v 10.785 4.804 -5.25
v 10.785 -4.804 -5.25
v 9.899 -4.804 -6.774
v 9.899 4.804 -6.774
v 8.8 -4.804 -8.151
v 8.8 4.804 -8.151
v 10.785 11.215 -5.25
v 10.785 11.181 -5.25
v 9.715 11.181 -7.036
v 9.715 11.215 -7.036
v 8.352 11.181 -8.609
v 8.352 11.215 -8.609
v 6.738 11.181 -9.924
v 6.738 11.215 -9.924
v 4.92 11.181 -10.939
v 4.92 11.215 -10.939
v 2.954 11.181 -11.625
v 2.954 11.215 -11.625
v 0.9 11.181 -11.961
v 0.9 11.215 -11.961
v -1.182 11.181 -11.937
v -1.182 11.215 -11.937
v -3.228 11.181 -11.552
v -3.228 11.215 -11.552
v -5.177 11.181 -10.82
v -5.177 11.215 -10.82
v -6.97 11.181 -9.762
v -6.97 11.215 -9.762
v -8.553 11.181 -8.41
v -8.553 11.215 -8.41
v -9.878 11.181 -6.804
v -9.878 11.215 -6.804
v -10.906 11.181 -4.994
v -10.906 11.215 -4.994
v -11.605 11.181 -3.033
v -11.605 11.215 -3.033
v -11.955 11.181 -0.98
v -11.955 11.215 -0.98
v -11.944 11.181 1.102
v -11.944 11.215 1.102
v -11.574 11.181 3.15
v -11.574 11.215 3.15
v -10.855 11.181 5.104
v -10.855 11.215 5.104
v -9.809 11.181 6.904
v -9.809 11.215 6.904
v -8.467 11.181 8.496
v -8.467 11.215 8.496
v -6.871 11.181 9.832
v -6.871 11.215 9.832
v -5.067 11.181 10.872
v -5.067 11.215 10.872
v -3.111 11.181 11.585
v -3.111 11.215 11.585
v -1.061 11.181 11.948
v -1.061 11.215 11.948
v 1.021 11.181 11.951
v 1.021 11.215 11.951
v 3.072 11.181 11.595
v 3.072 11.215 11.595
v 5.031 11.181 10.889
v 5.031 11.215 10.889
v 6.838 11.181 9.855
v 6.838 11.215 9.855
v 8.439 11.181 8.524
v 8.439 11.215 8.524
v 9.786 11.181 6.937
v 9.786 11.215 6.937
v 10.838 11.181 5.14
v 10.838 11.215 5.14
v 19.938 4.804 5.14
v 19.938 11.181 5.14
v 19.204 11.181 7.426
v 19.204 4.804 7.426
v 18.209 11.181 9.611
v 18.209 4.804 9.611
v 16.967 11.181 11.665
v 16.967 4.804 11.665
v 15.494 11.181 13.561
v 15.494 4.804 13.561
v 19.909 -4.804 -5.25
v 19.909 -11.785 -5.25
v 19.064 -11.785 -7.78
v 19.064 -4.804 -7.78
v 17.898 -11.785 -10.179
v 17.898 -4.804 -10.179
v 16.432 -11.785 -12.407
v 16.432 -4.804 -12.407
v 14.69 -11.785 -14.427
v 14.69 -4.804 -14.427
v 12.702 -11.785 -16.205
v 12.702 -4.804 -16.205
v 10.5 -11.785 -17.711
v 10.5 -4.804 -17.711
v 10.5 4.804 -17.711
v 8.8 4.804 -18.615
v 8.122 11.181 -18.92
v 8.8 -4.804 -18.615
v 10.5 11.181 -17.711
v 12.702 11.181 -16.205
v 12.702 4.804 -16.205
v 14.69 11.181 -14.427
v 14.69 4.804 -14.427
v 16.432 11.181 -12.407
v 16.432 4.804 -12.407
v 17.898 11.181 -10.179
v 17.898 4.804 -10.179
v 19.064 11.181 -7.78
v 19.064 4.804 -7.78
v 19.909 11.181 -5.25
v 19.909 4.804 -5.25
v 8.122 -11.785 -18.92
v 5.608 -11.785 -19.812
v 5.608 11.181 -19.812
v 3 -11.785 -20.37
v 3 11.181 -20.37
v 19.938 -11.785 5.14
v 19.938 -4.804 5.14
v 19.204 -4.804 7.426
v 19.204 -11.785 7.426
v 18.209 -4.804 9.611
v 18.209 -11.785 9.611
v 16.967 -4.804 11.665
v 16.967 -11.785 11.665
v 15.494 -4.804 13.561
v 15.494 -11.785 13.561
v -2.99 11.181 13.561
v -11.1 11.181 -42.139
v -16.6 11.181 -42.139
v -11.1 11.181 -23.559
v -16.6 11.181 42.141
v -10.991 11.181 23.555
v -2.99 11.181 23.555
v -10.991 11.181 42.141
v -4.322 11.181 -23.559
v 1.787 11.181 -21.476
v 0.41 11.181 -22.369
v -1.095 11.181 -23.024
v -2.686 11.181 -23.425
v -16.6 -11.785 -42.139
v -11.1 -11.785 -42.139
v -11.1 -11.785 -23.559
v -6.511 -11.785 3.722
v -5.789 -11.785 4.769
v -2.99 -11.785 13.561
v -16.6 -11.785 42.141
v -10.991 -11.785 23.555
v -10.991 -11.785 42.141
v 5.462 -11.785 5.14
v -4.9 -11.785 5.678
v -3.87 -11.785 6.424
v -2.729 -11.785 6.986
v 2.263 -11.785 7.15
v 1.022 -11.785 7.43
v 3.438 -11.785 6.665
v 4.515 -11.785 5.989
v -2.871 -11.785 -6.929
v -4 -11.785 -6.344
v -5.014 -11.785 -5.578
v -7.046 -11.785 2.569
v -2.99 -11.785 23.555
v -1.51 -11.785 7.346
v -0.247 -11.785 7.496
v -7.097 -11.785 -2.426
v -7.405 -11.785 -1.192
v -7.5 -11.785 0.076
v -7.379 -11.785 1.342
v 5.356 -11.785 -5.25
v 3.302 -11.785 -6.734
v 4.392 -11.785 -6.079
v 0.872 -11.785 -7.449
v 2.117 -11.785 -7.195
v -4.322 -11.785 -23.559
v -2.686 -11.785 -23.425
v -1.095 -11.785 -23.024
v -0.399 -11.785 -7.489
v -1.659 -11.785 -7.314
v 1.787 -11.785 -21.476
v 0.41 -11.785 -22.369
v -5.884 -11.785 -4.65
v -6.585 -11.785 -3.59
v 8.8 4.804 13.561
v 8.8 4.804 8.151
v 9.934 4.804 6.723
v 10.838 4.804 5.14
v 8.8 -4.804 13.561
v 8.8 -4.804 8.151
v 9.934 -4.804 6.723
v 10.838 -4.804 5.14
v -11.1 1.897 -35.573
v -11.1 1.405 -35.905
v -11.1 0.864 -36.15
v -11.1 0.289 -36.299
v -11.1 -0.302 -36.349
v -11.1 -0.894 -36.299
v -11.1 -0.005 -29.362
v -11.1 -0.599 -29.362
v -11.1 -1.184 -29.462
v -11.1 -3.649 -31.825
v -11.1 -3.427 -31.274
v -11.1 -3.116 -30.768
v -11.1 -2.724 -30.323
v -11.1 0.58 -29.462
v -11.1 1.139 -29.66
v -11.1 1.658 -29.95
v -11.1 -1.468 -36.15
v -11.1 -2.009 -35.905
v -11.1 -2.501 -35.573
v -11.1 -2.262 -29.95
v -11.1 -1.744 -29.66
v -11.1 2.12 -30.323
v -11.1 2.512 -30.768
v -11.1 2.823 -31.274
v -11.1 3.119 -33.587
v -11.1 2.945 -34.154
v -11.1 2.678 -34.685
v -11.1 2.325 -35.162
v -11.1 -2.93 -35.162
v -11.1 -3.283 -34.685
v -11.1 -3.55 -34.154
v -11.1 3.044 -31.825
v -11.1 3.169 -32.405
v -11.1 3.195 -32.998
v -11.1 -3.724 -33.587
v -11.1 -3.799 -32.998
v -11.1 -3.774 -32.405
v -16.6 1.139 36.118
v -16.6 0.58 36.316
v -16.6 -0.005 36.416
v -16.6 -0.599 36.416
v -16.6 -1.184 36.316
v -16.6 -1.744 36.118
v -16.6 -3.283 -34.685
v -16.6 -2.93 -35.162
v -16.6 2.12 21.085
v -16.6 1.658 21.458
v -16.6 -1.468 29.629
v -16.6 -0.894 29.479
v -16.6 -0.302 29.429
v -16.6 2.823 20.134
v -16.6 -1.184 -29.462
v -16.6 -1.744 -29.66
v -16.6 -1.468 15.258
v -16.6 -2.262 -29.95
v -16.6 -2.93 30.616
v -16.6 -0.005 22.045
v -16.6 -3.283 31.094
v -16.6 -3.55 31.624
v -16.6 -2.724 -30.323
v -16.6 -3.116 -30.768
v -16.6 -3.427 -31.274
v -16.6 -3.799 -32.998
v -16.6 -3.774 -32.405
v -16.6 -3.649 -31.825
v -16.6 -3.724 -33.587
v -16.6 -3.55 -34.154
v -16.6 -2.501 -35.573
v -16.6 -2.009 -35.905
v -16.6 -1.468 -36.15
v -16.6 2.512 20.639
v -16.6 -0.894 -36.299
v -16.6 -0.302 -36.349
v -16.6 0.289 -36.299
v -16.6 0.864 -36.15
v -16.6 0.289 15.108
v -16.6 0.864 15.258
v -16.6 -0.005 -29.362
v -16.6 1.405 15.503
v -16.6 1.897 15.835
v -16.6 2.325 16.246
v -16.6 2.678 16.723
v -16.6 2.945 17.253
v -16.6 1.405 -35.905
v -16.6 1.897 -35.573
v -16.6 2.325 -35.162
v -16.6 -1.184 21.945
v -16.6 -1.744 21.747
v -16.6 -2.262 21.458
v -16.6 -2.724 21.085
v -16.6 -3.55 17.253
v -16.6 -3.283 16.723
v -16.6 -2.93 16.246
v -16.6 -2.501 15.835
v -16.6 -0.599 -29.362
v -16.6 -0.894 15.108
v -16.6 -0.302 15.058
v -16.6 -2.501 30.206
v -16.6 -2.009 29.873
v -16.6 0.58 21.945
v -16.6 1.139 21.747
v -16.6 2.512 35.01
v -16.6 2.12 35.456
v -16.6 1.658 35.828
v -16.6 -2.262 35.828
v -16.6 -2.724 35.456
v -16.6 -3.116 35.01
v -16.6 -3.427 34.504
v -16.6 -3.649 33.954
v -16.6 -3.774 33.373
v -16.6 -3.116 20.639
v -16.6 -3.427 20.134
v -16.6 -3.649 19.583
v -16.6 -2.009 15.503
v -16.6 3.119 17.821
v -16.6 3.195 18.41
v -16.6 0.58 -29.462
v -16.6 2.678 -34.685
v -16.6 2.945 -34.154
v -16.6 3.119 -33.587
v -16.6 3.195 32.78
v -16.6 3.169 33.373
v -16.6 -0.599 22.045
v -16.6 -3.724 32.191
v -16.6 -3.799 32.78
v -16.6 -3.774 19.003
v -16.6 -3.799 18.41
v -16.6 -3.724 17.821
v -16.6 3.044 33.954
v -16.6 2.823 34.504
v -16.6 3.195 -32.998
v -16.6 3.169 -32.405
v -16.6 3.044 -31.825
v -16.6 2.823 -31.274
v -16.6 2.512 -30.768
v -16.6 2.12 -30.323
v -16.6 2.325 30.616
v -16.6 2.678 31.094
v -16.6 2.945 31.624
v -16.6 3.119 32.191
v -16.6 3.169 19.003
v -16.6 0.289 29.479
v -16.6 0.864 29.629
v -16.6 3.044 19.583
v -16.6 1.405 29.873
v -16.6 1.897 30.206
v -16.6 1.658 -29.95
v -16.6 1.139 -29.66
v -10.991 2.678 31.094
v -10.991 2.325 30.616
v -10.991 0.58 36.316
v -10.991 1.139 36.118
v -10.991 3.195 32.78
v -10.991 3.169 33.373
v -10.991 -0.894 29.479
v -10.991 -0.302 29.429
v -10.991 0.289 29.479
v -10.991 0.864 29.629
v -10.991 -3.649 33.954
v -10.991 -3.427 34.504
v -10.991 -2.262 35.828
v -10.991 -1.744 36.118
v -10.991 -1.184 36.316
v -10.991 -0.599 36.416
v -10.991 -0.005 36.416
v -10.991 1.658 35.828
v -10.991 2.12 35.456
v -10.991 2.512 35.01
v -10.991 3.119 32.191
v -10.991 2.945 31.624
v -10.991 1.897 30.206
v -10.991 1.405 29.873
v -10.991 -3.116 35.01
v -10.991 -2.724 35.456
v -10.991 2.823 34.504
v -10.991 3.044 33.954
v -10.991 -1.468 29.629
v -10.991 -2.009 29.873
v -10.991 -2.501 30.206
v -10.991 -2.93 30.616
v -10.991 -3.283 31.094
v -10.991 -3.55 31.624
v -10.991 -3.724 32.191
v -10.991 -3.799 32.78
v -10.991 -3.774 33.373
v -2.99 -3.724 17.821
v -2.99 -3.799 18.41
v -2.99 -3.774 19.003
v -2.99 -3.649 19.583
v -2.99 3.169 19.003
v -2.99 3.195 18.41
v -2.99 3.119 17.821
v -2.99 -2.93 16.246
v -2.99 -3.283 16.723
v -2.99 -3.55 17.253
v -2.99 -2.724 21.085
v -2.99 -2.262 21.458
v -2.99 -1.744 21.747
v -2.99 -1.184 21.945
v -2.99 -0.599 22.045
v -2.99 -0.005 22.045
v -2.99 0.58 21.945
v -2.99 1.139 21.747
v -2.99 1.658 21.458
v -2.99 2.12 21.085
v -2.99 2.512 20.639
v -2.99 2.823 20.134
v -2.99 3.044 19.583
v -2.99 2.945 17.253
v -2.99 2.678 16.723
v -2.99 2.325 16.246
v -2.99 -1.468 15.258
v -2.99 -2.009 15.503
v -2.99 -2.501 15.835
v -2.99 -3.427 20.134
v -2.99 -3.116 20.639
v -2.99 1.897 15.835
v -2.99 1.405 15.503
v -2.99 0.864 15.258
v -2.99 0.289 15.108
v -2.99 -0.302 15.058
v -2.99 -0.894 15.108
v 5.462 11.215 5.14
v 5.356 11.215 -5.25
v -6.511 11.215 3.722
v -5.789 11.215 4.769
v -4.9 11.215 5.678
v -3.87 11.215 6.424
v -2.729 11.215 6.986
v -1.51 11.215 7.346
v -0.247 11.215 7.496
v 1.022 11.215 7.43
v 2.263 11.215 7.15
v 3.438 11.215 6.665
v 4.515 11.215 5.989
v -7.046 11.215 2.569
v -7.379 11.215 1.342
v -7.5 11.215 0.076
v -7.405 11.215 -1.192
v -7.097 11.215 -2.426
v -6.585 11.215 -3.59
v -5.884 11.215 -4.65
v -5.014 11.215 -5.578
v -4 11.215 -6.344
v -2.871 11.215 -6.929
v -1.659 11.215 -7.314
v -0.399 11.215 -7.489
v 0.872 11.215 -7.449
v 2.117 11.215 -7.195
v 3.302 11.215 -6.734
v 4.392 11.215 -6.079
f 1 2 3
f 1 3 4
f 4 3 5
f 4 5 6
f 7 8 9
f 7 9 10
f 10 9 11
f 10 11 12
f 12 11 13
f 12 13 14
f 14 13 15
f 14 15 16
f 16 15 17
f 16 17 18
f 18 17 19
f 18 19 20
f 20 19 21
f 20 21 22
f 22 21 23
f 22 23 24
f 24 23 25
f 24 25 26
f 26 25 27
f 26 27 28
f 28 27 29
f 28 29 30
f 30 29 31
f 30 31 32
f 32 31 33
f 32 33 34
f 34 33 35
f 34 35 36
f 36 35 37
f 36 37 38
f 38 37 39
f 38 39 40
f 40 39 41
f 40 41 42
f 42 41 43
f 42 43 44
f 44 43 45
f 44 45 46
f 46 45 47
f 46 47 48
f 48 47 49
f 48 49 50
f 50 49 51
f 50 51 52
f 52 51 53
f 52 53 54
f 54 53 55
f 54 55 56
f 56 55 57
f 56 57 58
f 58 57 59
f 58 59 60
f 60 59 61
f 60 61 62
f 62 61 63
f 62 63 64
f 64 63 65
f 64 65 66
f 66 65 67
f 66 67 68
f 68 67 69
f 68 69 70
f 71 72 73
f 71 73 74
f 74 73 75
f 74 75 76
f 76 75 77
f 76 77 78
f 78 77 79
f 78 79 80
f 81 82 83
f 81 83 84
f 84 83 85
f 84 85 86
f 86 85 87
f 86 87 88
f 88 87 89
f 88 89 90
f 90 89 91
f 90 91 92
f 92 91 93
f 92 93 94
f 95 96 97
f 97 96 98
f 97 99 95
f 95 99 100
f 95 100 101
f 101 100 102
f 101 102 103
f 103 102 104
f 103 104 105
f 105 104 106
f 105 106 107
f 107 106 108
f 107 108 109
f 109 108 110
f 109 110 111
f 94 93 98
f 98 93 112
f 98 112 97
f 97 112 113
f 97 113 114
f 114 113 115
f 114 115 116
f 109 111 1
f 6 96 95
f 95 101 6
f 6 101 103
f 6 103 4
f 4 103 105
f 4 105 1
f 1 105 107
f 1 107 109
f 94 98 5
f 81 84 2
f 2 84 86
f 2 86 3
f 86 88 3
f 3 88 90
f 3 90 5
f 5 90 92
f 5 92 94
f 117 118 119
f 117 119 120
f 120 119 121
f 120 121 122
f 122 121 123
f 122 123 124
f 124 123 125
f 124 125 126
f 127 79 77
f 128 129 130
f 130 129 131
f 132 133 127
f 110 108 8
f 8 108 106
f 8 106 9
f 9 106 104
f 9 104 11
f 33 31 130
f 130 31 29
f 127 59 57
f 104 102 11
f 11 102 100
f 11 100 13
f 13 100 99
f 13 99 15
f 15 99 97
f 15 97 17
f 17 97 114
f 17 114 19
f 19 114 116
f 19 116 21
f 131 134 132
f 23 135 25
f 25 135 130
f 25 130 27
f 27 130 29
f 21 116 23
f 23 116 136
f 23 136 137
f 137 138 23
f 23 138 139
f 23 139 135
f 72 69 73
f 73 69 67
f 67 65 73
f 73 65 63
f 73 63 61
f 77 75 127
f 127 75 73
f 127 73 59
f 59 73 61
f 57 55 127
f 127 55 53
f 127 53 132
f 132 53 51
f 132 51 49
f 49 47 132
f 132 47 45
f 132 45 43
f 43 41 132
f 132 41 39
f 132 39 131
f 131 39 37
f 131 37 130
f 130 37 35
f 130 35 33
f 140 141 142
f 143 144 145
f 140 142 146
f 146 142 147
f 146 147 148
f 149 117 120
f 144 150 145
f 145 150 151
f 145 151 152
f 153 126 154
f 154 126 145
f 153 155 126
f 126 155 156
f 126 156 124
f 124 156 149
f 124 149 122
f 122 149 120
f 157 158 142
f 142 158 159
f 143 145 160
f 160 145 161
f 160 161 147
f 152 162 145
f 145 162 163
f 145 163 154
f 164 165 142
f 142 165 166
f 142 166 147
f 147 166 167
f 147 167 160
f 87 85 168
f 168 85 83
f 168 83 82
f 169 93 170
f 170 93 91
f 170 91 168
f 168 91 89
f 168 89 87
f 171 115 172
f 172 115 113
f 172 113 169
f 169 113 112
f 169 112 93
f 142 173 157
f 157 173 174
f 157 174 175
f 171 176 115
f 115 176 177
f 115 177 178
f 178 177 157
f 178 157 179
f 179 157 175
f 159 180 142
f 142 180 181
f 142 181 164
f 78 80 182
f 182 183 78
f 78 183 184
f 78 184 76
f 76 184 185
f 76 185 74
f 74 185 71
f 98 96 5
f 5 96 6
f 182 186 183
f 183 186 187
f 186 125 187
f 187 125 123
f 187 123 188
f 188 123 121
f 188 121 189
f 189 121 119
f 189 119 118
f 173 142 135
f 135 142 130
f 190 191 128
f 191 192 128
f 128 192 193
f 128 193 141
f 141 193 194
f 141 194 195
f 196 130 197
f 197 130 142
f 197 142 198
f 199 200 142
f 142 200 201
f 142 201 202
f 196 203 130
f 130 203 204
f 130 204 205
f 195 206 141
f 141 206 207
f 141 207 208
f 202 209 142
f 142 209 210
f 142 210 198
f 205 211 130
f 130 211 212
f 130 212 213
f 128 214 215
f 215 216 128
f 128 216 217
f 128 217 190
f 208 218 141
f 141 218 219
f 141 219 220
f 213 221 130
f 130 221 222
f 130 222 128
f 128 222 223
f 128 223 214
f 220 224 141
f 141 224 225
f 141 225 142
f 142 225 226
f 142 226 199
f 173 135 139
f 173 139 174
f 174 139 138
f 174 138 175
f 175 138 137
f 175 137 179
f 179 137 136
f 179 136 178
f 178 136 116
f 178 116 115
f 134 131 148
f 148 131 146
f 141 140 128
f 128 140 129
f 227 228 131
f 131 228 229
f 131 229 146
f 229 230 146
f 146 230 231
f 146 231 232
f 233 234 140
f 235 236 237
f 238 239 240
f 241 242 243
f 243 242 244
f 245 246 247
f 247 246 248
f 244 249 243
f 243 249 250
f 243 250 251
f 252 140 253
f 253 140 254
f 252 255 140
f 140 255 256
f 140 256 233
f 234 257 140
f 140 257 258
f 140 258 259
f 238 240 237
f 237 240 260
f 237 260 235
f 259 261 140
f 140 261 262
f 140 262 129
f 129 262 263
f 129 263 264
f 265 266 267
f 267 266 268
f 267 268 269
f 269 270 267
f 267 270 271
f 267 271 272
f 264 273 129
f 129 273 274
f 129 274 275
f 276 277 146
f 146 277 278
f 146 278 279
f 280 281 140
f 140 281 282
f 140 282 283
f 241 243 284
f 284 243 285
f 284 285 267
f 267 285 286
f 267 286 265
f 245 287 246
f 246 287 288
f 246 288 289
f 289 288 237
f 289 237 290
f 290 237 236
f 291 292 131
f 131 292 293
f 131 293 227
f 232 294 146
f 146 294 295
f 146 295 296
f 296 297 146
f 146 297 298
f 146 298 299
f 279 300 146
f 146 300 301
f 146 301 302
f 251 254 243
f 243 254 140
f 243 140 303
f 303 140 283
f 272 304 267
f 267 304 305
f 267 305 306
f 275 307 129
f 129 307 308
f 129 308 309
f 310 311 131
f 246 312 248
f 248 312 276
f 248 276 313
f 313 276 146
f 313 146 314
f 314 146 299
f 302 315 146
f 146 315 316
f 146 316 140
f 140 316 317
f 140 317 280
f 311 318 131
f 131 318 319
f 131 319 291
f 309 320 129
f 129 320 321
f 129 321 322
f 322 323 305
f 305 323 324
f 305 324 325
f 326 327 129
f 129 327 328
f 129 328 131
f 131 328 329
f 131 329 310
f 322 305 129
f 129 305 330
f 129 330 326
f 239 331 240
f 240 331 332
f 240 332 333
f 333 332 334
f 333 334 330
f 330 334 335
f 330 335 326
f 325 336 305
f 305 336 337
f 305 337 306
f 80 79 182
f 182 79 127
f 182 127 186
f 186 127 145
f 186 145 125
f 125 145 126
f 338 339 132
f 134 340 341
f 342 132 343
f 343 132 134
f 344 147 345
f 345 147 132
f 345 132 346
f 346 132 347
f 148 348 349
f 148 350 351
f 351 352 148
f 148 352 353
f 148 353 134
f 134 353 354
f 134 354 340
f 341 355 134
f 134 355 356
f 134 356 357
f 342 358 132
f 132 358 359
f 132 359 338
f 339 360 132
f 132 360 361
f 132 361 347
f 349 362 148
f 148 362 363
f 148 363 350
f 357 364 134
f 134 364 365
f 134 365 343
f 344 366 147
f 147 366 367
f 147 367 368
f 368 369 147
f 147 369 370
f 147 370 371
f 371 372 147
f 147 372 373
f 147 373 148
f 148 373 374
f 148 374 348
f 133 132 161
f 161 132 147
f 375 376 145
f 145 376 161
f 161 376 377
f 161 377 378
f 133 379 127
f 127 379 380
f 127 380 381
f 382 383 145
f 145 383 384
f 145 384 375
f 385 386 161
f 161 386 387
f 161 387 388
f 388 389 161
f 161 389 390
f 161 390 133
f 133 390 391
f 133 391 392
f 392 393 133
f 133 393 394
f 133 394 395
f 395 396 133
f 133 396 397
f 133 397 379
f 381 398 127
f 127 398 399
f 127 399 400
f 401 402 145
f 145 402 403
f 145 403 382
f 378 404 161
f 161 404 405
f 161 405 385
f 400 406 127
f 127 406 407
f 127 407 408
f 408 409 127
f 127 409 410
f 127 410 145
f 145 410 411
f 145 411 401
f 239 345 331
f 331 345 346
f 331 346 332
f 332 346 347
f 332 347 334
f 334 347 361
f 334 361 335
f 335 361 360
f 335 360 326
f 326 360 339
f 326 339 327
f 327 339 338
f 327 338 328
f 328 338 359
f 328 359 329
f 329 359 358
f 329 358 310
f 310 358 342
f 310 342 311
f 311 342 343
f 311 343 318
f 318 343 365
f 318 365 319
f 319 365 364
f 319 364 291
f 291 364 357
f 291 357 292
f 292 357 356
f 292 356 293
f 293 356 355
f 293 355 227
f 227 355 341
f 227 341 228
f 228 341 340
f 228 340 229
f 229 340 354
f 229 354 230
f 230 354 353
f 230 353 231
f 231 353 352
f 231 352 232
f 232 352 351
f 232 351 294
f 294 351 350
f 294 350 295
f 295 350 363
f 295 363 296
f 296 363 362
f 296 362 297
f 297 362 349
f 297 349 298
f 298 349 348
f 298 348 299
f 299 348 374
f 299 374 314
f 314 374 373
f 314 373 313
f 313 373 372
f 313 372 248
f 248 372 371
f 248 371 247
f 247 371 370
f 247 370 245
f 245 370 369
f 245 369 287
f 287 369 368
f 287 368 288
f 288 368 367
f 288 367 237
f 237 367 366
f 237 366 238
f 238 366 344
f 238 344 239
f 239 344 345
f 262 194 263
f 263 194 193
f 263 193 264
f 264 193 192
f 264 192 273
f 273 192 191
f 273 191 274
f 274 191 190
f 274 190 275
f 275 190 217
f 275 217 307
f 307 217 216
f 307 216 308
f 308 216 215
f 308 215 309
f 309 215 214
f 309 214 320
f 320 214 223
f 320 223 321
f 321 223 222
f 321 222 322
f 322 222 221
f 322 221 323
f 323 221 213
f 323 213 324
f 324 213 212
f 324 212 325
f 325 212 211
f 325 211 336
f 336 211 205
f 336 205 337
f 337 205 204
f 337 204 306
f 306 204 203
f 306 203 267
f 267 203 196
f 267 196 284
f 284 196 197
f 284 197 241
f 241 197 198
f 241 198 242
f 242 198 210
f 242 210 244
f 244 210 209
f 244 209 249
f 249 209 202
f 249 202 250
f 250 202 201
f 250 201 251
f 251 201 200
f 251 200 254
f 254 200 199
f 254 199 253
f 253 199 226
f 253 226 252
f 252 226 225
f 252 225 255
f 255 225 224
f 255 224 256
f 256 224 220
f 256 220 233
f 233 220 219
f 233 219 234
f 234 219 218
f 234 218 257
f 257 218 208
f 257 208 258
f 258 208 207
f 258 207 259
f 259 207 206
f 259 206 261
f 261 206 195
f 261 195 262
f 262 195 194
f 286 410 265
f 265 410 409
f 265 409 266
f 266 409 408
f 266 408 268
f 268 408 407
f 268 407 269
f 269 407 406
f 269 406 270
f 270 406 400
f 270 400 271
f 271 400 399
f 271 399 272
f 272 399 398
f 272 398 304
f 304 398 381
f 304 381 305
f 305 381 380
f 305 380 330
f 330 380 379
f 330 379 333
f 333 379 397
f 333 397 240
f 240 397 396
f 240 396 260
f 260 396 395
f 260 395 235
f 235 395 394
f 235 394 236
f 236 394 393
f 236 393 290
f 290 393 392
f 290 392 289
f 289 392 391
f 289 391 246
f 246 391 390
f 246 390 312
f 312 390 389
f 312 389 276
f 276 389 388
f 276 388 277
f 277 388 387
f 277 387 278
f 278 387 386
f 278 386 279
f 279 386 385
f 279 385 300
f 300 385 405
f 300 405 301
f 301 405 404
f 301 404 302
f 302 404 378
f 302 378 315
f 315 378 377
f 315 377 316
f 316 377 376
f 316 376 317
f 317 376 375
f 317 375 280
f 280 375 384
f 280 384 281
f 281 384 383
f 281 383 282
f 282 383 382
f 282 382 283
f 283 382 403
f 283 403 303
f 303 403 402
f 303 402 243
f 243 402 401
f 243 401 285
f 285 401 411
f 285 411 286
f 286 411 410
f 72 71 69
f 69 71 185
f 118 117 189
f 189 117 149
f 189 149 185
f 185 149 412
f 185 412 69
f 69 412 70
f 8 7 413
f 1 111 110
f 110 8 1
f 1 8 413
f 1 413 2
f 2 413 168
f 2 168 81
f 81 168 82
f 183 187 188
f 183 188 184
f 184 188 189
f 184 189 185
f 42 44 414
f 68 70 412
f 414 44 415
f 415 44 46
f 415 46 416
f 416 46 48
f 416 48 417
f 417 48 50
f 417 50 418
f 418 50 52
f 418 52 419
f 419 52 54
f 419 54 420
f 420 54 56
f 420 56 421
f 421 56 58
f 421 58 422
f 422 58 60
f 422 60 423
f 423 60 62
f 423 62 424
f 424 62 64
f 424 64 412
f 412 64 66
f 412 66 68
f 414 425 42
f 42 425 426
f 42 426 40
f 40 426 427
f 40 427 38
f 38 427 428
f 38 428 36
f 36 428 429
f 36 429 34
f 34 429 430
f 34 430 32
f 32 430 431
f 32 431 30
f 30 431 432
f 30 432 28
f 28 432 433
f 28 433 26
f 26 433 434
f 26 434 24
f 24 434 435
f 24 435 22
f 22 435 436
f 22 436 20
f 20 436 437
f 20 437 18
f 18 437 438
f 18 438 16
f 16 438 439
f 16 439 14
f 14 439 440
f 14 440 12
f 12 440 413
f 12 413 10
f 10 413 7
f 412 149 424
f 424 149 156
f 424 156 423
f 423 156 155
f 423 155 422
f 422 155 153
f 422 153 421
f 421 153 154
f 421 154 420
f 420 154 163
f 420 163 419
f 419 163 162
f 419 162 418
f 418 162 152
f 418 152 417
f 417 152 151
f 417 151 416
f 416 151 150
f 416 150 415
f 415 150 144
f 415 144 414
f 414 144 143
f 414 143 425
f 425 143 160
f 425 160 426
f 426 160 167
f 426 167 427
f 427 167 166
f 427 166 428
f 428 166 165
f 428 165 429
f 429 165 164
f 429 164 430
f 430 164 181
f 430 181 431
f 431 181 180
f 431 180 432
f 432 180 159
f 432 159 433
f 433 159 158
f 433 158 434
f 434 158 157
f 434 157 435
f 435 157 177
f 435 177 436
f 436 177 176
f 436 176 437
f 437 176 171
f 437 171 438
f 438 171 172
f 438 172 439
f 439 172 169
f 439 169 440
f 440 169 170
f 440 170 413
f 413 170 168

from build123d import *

# Parameters (mm, degrees)
SKETCH_1_R           = 20.68
SKETCH_1_R_2         = 9.68
EXTRUDE_1_DEPTH      = 116.68
SKETCH_11_W          = 27
SKETCH_11_H          = 150
CUT_EXTRUDE_3_DEPTH  = 40
SKETCH_13_W          = 10
SKETCH_13_H          = 128.345013401
CUT_EXTRUDE_7_DEPTH  = 126.614916312
SKETCH_15_W          = 8
SKETCH_15_H          = 68.68
CUT_EXTRUDE_9_DEPTH  = 48
SKETCH_16_W          = 15.549431524
SKETCH_16_H          = 20
SKETCH_16_W_2        = 15.459431524
EXTRUDE_4_DEPTH      = 19.2
SKETCH_17_W          = 19.20851187
SKETCH_17_H          = 14.03
CUT_EXTRUDE_10_DEPTH = 20.2
SKETCH_18_R          = 9.59
CUT_EXTRUDE_11_DEPTH = 121.289430957
SKETCH_21_R          = 2.985
CUT_EXTRUDE_12_DEPTH = 55.2
EXTRUDE_START        = 55.2
SKETCH_24_R          = 20.59
SKETCH_24_R_2        = 9.59
EXTRUDE_2_DEPTH      = 55.2
CUT_EXTRUDE_13_DEPTH = 55.2
SKETCH_26_W          = 10.00851187
SKETCH_26_H          = 41.68
CUT_EXTRUDE_15_DEPTH = 55.2
SKETCH_27_W          = 10
SKETCH_27_H          = 40
CUT_EXTRUDE_16_DEPTH = 55.2
SKETCH_28_W          = 44.880694938
SKETCH_28_H          = 9.608044066
CUT_EXTRUDE_17_DEPTH = 12.2
SKETCH_35_W          = 13.53
SKETCH_35_H          = 20
EXTRUDE_10_DEPTH     = 15
EXTRUDE_11_DEPTH     = 15
SKETCH_37_W          = 9
SKETCH_37_H          = 20
EXTRUDE_12_DEPTH     = 20
SKETCH_38_W          = 9
SKETCH_38_H          = 20
EXTRUDE_13_DEPTH     = 20
SKETCH_42_R          = 2.985
CUT_EXTRUDE_21_DEPTH = 20
CUT_EXTRUDE_23_DEPTH = 138.235841092
SKETCH_45_W          = 3
SKETCH_45_H          = 20
EXTRUDE_14_DEPTH     = 30
SKETCH_46_W          = 3
SKETCH_46_H          = 20
EXTRUDE_15_DEPTH     = 30
SKETCH_47_W          = 33.078221107
SKETCH_47_H          = 20
EXTRUDE_16_DEPTH     = 50
SKETCH_48_W          = 30
SKETCH_48_H          = 20
EXTRUDE_17_DEPTH     = 50
SKETCH_50_W          = 50
SKETCH_50_H          = 20
EXTRUDE_18_DEPTH     = 1
SKETCH_51_W          = 50
SKETCH_51_H          = 20
EXTRUDE_19_DEPTH     = 1
SKETCH_52_W          = 53
SKETCH_52_H          = 14
CUT_EXTRUDE_24_DEPTH = 151.972575738
SKETCH_53_W          = 53
SKETCH_53_H          = 14
CUT_EXTRUDE_25_DEPTH = 151.942387436
SKETCH_54_W          = 40
SKETCH_54_H          = 73.27
CUT_EXTRUDE_26_DEPTH = 147.866192927
SKETCH_56_W          = 13.00851187
SKETCH_56_H          = 20
EXTRUDE_21_DEPTH     = 3.08
SKETCH_60_W          = 6.504255935
SKETCH_60_H          = 76.35
CUT_EXTRUDE_30_DEPTH = 137.106994034
CUT_EXTRUDE_32_DEPTH = 20
SKETCH_64_W          = 16.20851187
SKETCH_64_H          = 0.09
EXTRUDE_22_DEPTH     = 20
SKETCH_65_W          = 3.495744065
SKETCH_65_H          = 3.26
CUT_EXTRUDE_33_DEPTH = 137.057988464
SKETCH_66_W          = 3.495744065
SKETCH_66_H          = 1.776778893
SKETCH_66_W_2        = 3.503635083
SKETCH_66_H_2        = 1.775
EXTRUDE_23_DEPTH     = 20.2
SKETCH_68_W          = 6.504255935
SKETCH_68_H          = 3.66
CUT_EXTRUDE_34_DEPTH = 20
SKETCH_69_R          = 2.985
CUT_EXTRUDE_35_DEPTH = 126.598983893
SKETCH_70_R          = 2.985
CUT_EXTRUDE_36_DEPTH = 132.360728238
SKETCH_71_W          = 38.005321573
SKETCH_71_H          = 111.965885132
CUT_EXTRUDE_37_DEPTH = 147.475577566
SKETCH_72_R          = 9.7
CUT_EXTRUDE_38_DEPTH = 38.185254838
CUT_EXTRUDE_START    = -22
SKETCH_77_R          = 30.59
SKETCH_77_R_2        = 20.59
CUT_EXTRUDE_2_DEPTH  = 22
SKETCH_78_W          = 34.816185151
SKETCH_78_H          = 22.96559116
EXTRUDE_26_DEPTH     = 0.1
SKETCH_80_W          = 2.900031179
SKETCH_80_H          = 6.148706656
EXTRUDE_28_DEPTH     = 23.1
SKETCH_81_W          = 6.148706656
SKETCH_81_H          = 23.1
EXTRUDE_29_DEPTH     = 14.1
SKETCH_82_W          = 6.148706656
SKETCH_82_H          = 0.13440884
CUT_EXTRUDE_39_DEPTH = 19.1
SKETCH_83_W          = 2.900031179
SKETCH_83_H          = 22.96559116
EXTRUDE_30_DEPTH     = 19.1
FILLET_1_R           = 10
SKETCH_84_W          = 3.5
SKETCH_84_H          = 19.1
EXTRUDE_31_DEPTH     = 23.1
SKETCH_85_W          = 3.5
SKETCH_85_H          = 0.52
CUT_EXTRUDE_40_DEPTH = 48.860163141
SKETCH_86_W          = 3.5
SKETCH_86_H          = 22.96559116
EXTRUDE_32_DEPTH     = 62.1
SKETCH_87_W          = 3.60851187
SKETCH_87_H          = 34.816185151
CUT_EXTRUDE_41_DEPTH = 62.1
SKETCH_89_W          = 0.10851187
SKETCH_89_H          = 6.15
EXTRUDE_33_DEPTH     = 23.1
EXTRUDE_34_DEPTH     = 22.1
SKETCH_91_W          = 0.971561636
SKETCH_91_H          = 22.96559116
CUT_EXTRUDE_42_DEPTH = 22.1
SKETCH_95_W          = 6.15
SKETCH_95_H          = 22.96559116
EXTRUDE_35_DEPTH     = 14.1
FILLET_2_R           = 10
SKETCH_96_W          = 3.60851187
SKETCH_96_H          = 2.548438364
CUT_EXTRUDE_43_DEPTH = 55.35700885
SKETCH_97_W          = 3.5
SKETCH_97_H          = 6.148706656
EXTRUDE_36_DEPTH     = 23.1
CUT_EXTRUDE_44_DEPTH = 23.1
SKETCH_99_W          = 6.15
SKETCH_99_H          = 0.13440884
CUT_EXTRUDE_45_DEPTH = 23.1
SKETCH_101_R         = 2.985
CUT_EXTRUDE_46_DEPTH = 23.1
SKETCH_103_W         = 3.60851187
SKETCH_103_H         = 0.54
CUT_EXTRUDE_49_DEPTH = 53.222714265
SKETCH_104_W         = 3.60851187
SKETCH_104_H         = 0.54
CUT_EXTRUDE_50_DEPTH = 53.222714265
SKETCH_123_W         = 24.188706656
SKETCH_123_H         = 22.96559116
SKETCH_123_W_2       = 24.195376485
EXTRUDE_37_DEPTH     = 2
SKETCH_124_R         = 3.05
CUT_EXTRUDE_60_DEPTH = 57.152183688
SKETCH_126_W         = 29.889481087
SKETCH_126_H         = 8.39
CUT_EXTRUDE_61_DEPTH = 53.222714265
SKETCH_127_W         = 18.58
SKETCH_127_H         = 22.96559116
EXTRUDE_38_DEPTH     = 10
SKETCH_128_R         = 3.25
CUT_EXTRUDE_62_DEPTH = 58.155273368
SKETCH_129_R         = 3.25
CUT_EXTRUDE_63_DEPTH = 58.155273368
SKETCH_130_W         = 24.958479246
SKETCH_130_H         = 10
CUT_EXTRUDE_64_DEPTH = 53.058343712
SKETCH_136_W         = 10
SKETCH_136_H         = 18.585376485
CUT_EXTRUDE_68_DEPTH = 24
SKETCH_138_W         = 5.60851187
SKETCH_138_H         = 22.96559116
EXTRUDE_40_DEPTH     = 38
SKETCH_141_W         = 9.994623515
SKETCH_141_H         = 22.96559116
EXTRUDE_41_DEPTH     = 3.24
SKETCH_144_W         = 2
SKETCH_144_H         = 9.994623515
CUT_EXTRUDE_70_DEPTH = 32.24
SKETCH_146_R         = 3.5
CUT_EXTRUDE_72_DEPTH = 54.719053459
SKETCH_150_R         = 3.5
CUT_EXTRUDE_74_DEPTH = 50.508459618
SKETCH_152_W         = 22.731002657
SKETCH_152_H         = 10.39
CUT_EXTRUDE_75_DEPTH = 40.05
SKETCH_153_R         = 11.995
SKETCH_153_R_2       = 6.995
EXTRUDE_3_DEPTH      = 23
CUT_EXTRUDE_76_DEPTH = 27
SKETCH_156_R         = 7.5
CUT_EXTRUDE_77_DEPTH = 40


with BuildPart() as part:
    # 草圖1 → 伸長-薄件1 (new body)
    with BuildSketch(Plane(origin=(0, 0, 0), x_dir=(1, 0, 0), z_dir=(0, 1, 0))):
        Circle(SKETCH_1_R)
        Circle(SKETCH_1_R_2, mode=Mode.SUBTRACT)
    extrude(amount=EXTRUDE_1_DEPTH)

    # 草圖11 → 除料-伸長3 (cut)
    with BuildSketch(Plane(origin=(0, 116.68, 0), x_dir=(1, 0, 0), z_dir=(0, 1, 0))):
        with Locations((21.70851187, -44.235815192)):
            Rectangle(SKETCH_11_W, SKETCH_11_H)
    extrude(amount=-CUT_EXTRUDE_3_DEPTH, mode=Mode.SUBTRACT)

    # 草圖13 → 除料-伸長7 (cut, through all)
    with BuildSketch(Plane.XY.offset(21)):
        with Locations((-16, 58.612182466)):
            Rectangle(SKETCH_13_W, SKETCH_13_H)
    extrude(amount=-CUT_EXTRUDE_7_DEPTH, mode=Mode.SUBTRACT)

    # 草圖15 → 除料-伸長9 (cut)
    with BuildSketch(Plane.XY.offset(21)):
        with Locations((-1.395744065, 52.34)):
            Rectangle(SKETCH_15_W, SKETCH_15_H)
    extrude(amount=-CUT_EXTRUDE_9_DEPTH, mode=Mode.SUBTRACT)

    # 草圖16 → 填料-伸長4 (add)
    with BuildSketch(Plane(origin=(8.20851187, 0, 0), x_dir=(0, 0, -1), z_dir=(1, 0, 0))):
        with Locations((12.905284238, 106.68)):
            Rectangle(SKETCH_16_W, SKETCH_16_H)
        with Locations((-12.860284238, 106.68)):
            Rectangle(SKETCH_16_W_2, SKETCH_16_H)
    extrude(amount=-EXTRUDE_4_DEPTH)

    # 草圖17 → 除料-伸長10 (cut)
    with BuildSketch(Plane(origin=(0, 116.68, 0), x_dir=(1, 0, 0), z_dir=(0, 1, 0))):
        with Locations((-1.395744065, -0.045)):
            Rectangle(SKETCH_17_W, SKETCH_17_H)
    extrude(amount=-CUT_EXTRUDE_10_DEPTH, mode=Mode.SUBTRACT)

    # 草圖18 → 除料-伸長11 (cut, through all)
    with BuildSketch(Plane.XZ):
        with Locations(Location((0, 0, 0), (0, 0, 90))):
            Circle(SKETCH_18_R)
    extrude(amount=-CUT_EXTRUDE_11_DEPTH, mode=Mode.SUBTRACT)

    # 草圖21 → 除料-伸長12 (cut)
    with BuildSketch(Plane(origin=(0, 0, -20.68), x_dir=(-1, 0, 0), z_dir=(0, 0, -1))):
        with Locations((1.39148813, 108.73)):
            Circle(SKETCH_21_R)
    extrude(amount=-CUT_EXTRUDE_12_DEPTH, mode=Mode.SUBTRACT)

    # 草圖24 → 伸長-薄件2 (add)
    with BuildSketch(Plane.XZ.offset(EXTRUDE_START)):
        Circle(SKETCH_24_R)
        Circle(SKETCH_24_R_2, mode=Mode.SUBTRACT)
    extrude(amount=-EXTRUDE_2_DEPTH)

    # 草圖25 → 除料-伸長13 (cut)
    with BuildSketch(Plane.XY.offset(21)):
        Polygon((-1.39148813, -11.785), (22.612379708, -11.785), (22.612379708, -63.873337429), (-22.749525245, -63.873337429), (-22.749525245, -11.785), align=None)
    extrude(amount=-CUT_EXTRUDE_13_DEPTH, mode=Mode.SUBTRACT)

    # 草圖26 → 除料-伸長15 (cut)
    with BuildSketch(Plane(origin=(0, 0, 0), x_dir=(1, 0, 0), z_dir=(0, 1, 0))):
        with Locations((-15.995744065, -0.16)):
            Rectangle(SKETCH_26_W, SKETCH_26_H)
    extrude(amount=-CUT_EXTRUDE_15_DEPTH, mode=Mode.SUBTRACT)

    # 草圖27 → 除料-伸長16 (cut)
    with BuildSketch(Plane(origin=(21, 0, 0), x_dir=(0, 0, -1), z_dir=(1, 0, 0))):
        with Locations((0, 41.68)):
            Rectangle(SKETCH_27_W, SKETCH_27_H)
    extrude(amount=-CUT_EXTRUDE_16_DEPTH, mode=Mode.SUBTRACT)

    # 草圖28 → 除料-伸長17 (cut)
    with BuildSketch(Plane(origin=(21, 0, 0), x_dir=(0, 0, -1), z_dir=(1, 0, 0))):
        Rectangle(SKETCH_28_W, SKETCH_28_H)
    extrude(amount=-CUT_EXTRUDE_17_DEPTH, mode=Mode.SUBTRACT)

    # 草圖35 → 填料-伸長10 (add)
    with BuildSketch(Plane.ZY.offset(10.99148813)):
        with Locations((13.825, 106.68)):
            Rectangle(SKETCH_35_W, SKETCH_35_H)
    extrude(amount=EXTRUDE_10_DEPTH)

    # 草圖36 → 填料-伸長11 (add)
    with BuildSketch(Plane.ZY.offset(10.99148813)):
        Polygon((-20.68, 116.68), (-6.97, 116.68), (-6.97, 96.48), (-20.68, 96.68), align=None)
    extrude(amount=EXTRUDE_11_DEPTH)

    # 草圖37 → 填料-伸長12 (add)
    with BuildSketch(Plane.XY.offset(20.59)):
        with Locations((-21.49148813, 106.68)):
            Rectangle(SKETCH_37_W, SKETCH_37_H)
    extrude(amount=EXTRUDE_12_DEPTH)

    # 草圖38 → 填料-伸長13 (add)
    with BuildSketch(Plane(origin=(0, 0, -20.68), x_dir=(-1, 0, 0), z_dir=(0, 0, -1))):
        with Locations((21.49148813, 106.68)):
            Rectangle(SKETCH_38_W, SKETCH_38_H)
    extrude(amount=EXTRUDE_13_DEPTH)

    # 草圖42 → 除料-伸長21 (cut)
    with BuildSketch(Plane(origin=(-16.99148813, 0, 0), x_dir=(0, 0, -1), z_dir=(1, 0, 0))):
        with Locations((30.68, 106.554418142)):
            Circle(SKETCH_42_R)
        with Locations((-30.395640125, 106.68)):
            Circle(SKETCH_42_R)
    extrude(amount=-CUT_EXTRUDE_21_DEPTH, mode=Mode.SUBTRACT)

    # 草圖43 → 除料-伸長23 (cut, through all)
    with BuildSketch(Plane(origin=(0, 116.68, 0), x_dir=(1, 0, 0), z_dir=(0, 1, 0))):
        Polygon((-11, 6.97), (-10.99148813, 20.68), (-10.99148813, 48.096794253), (-28.274756234, 48.096794253), (-28.274756234, -43.270506289), (-11, -43.270506289), align=None)
    extrude(amount=-CUT_EXTRUDE_23_DEPTH, mode=Mode.SUBTRACT)

    # 草圖45 → 填料-伸長14 (add)
    with BuildSketch(Plane.XY.offset(20.59)):
        with Locations((-9.5, 106.68)):
            Rectangle(SKETCH_45_W, SKETCH_45_H)
    extrude(amount=EXTRUDE_14_DEPTH)

    # 草圖46 → 填料-伸長15 (add)
    with BuildSketch(Plane(origin=(0, 0, -20.68), x_dir=(-1, 0, 0), z_dir=(0, 0, -1))):
        with Locations((9.49148813, 106.68)):
            Rectangle(SKETCH_46_W, SKETCH_46_H)
    extrude(amount=EXTRUDE_15_DEPTH)

    # 草圖47 → 填料-伸長16 (add)
    with BuildSketch(Plane.ZY.offset(11)):
        with Locations((34.050889447, 106.68)):
            Rectangle(SKETCH_47_W, SKETCH_47_H)
    extrude(amount=EXTRUDE_16_DEPTH)

    # 草圖48 → 填料-伸長17 (add)
    with BuildSketch(Plane.ZY.offset(10.99148813)):
        with Locations((-35.68, 106.68)):
            Rectangle(SKETCH_48_W, SKETCH_48_H)
    extrude(amount=EXTRUDE_17_DEPTH)

    # 草圖50 → 填料-伸長18 (add)
    with BuildSketch(Plane(origin=(0, 0, 17.511778893), x_dir=(-1, 0, 0), z_dir=(0, 0, -1))):
        with Locations((36, 106.68)):
            Rectangle(SKETCH_50_W, SKETCH_50_H)
    extrude(amount=EXTRUDE_18_DEPTH)

    # 草圖51 → 填料-伸長19 (add)
    with BuildSketch(Plane.XY.offset(-20.68)):
        with Locations((-35.99148813, 106.68)):
            Rectangle(SKETCH_51_W, SKETCH_51_H)
    extrude(amount=EXTRUDE_19_DEPTH)

    # 草圖52 → 除料-伸長24 (cut, through all)
    with BuildSketch(Plane(origin=(0, 116.68, 0), x_dir=(1, 0, 0), z_dir=(0, 1, 0))):
        with Locations((-34.49148813, 43.68)):
            Rectangle(SKETCH_52_W, SKETCH_52_H)
    extrude(amount=-CUT_EXTRUDE_24_DEPTH, mode=Mode.SUBTRACT)

    # 草圖53 → 除料-伸長25 (cut, through all)
    with BuildSketch(Plane(origin=(0, 116.68, 0), x_dir=(1, 0, 0), z_dir=(0, 1, 0))):
        with Locations((-34.5, -43.59)):
            Rectangle(SKETCH_53_W, SKETCH_53_H)
    extrude(amount=-CUT_EXTRUDE_25_DEPTH, mode=Mode.SUBTRACT)

    # 草圖54 → 除料-伸長26 (cut, through all)
    with BuildSketch(Plane(origin=(0, 116.68, 0), x_dir=(1, 0, 0), z_dir=(0, 1, 0))):
        with Locations((-41, 0.045)):
            Rectangle(SKETCH_54_W, SKETCH_54_H)
    extrude(amount=-CUT_EXTRUDE_26_DEPTH, mode=Mode.SUBTRACT)

    # 草圖56 → 填料-伸長21 (add)
    with BuildSketch(Plane(origin=(0, 0, -36.68), x_dir=(-1, 0, 0), z_dir=(0, 0, -1))):
        with Locations((14.495744065, 106.68)):
            Rectangle(SKETCH_56_W, SKETCH_56_H)
    extrude(amount=EXTRUDE_21_DEPTH)

    # 草圖60 → 除料-伸長30 (cut, through all)
    with BuildSketch(Plane(origin=(0, 116.68, 0), x_dir=(1, 0, 0), z_dir=(0, 1, 0))):
        with Locations((-17.747872032, 1.585)):
            Rectangle(SKETCH_60_W, SKETCH_60_H)
    extrude(amount=-CUT_EXTRUDE_30_DEPTH, mode=Mode.SUBTRACT)

    # 草圖61 → 除料-伸長32 (cut)
    with BuildSketch(Plane(origin=(0, 116.68, 0), x_dir=(1, 0, 0), z_dir=(0, 1, 0))):
        Polygon((1.92725193, -20.59), (1.92725193, -22.399121663), (-2.174190472, -21.421542421), (-2.174190472, -20.59), align=None)
    extrude(amount=-CUT_EXTRUDE_32_DEPTH, mode=Mode.SUBTRACT)

    # 草圖64 → 填料-伸長22 (add)
    with BuildSketch(Plane(origin=(0, 116.68, 0), x_dir=(1, 0, 0), z_dir=(0, 1, 0))):
        with Locations((0.104255935, -20.635)):
            Rectangle(SKETCH_64_W, SKETCH_64_H)
    extrude(amount=-EXTRUDE_22_DEPTH)

    # 草圖65 → 除料-伸長33 (cut, through all)
    with BuildSketch(Plane(origin=(0, 116.68, 0), x_dir=(1, 0, 0), z_dir=(0, 1, 0))):
        with Locations((-12.747872033, -18.141778893)):
            Rectangle(SKETCH_65_W, SKETCH_65_H)
    extrude(amount=-CUT_EXTRUDE_33_DEPTH, mode=Mode.SUBTRACT)

    # 草圖66 → 填料-伸長23 (add)
    with BuildSketch(Plane(origin=(0, 96.48, 0), x_dir=(1, 0, 0), z_dir=(0, 1, 0))):
        with Locations((-12.747872033, -18.883389447)):
            Rectangle(SKETCH_66_W, SKETCH_66_H)
        with Locations((-12.743926524, 18.7925)):
            Rectangle(SKETCH_66_W_2, SKETCH_66_H_2)
    extrude(amount=EXTRUDE_23_DEPTH)

    # 草圖68 → 除料-伸長34 (cut)
    with BuildSketch(Plane(origin=(0, 116.68, 0), x_dir=(1, 0, 0), z_dir=(0, 1, 0))):
        with Locations((-11.243616098, 37.93)):
            Rectangle(SKETCH_68_W, SKETCH_68_H)
    extrude(amount=-CUT_EXTRUDE_34_DEPTH, mode=Mode.SUBTRACT)

    # 草圖69 → 除料-伸長35 (cut, through all)
    with BuildSketch(Plane(origin=(-7.99148813, 0, 0), x_dir=(0, 0, -1), z_dir=(1, 0, 0))):
        with Locations((28.39, 106.68)):
            Circle(SKETCH_69_R)
        with Locations((-28.635, 106.68)):
            Circle(SKETCH_69_R)
    extrude(amount=-CUT_EXTRUDE_35_DEPTH, mode=Mode.SUBTRACT)

    # 草圖70 → 除料-伸長36 (cut, through all)
    with BuildSketch(Plane(origin=(0, 0, 20.59), x_dir=(-1, 0, 0), z_dir=(0, 0, -1))):
        with Locations((1.39148813, 108.73)):
            Circle(SKETCH_70_R)
    extrude(amount=-CUT_EXTRUDE_36_DEPTH, mode=Mode.SUBTRACT)

    # 草圖71 → 除料-伸長37 (cut, through all)
    with BuildSketch(Plane.XY.offset(50)):
        with Locations((2.76131712, 67.163533726)):
            Rectangle(SKETCH_71_W, SKETCH_71_H)
    extrude(amount=-CUT_EXTRUDE_37_DEPTH, mode=Mode.SUBTRACT)

    # 草圖72 → 除料-伸長38 (cut, through all)
    with BuildSketch(Plane.XZ.offset(11.785)):
        with Locations(Location((0, 0, 0), (0, 0, 270))):
            Circle(SKETCH_72_R)
    extrude(amount=-CUT_EXTRUDE_38_DEPTH, mode=Mode.SUBTRACT)

    # 草圖77 → 除料-伸長-薄件2 (cut)
    with BuildSketch(Plane(origin=(0, 11.18059116, 0), x_dir=(1, 0, 0), z_dir=(0, 1, 0)).offset(CUT_EXTRUDE_START)):
        Circle(SKETCH_77_R)
        Circle(SKETCH_77_R_2, mode=Mode.SUBTRACT)
    extrude(amount=CUT_EXTRUDE_2_DEPTH, mode=Mode.SUBTRACT)

    # 草圖78 → 填料-伸長26 (add)
    with BuildSketch(Plane.ZY.offset(11)):
        with Locations((-0.002688243, -0.30220442)):
            Rectangle(SKETCH_78_W, SKETCH_78_H)
    extrude(amount=EXTRUDE_26_DEPTH)



with BuildPart() as body_2:
    # 草圖80 → 填料-伸長28 (new body)
    with BuildSketch(Plane.XZ.offset(11.785)):
        with Locations((-12.55001559, -20.485134146)):
            Rectangle(SKETCH_80_W, SKETCH_80_H)
    extrude(amount=-EXTRUDE_28_DEPTH)


with BuildPart() as part_1:
    add(part.part)

    add(body_2.part)  # 填料-伸長29 merges body 2
    # 草圖81 → 填料-伸長29 (add)
    with BuildSketch(Plane(origin=(-11.1, 0, 0), x_dir=(0, 0, -1), z_dir=(1, 0, 0))):
        with Locations((20.485134146, -0.235)):
            Rectangle(SKETCH_81_W, SKETCH_81_H)
    extrude(amount=EXTRUDE_29_DEPTH)

    # 草圖82 → 除料-伸長39 (cut)
    with BuildSketch(Plane(origin=(3, 0, 0), x_dir=(0, 0, -1), z_dir=(1, 0, 0))):
        with Locations((20.485134146, 11.24779558)):
            Rectangle(SKETCH_82_W, SKETCH_82_H)
    extrude(amount=-CUT_EXTRUDE_39_DEPTH, mode=Mode.SUBTRACT)

    # 草圖83 → 填料-伸長30 (add)
    with BuildSketch(Plane.XY.offset(-17.410780818)):
        with Locations((-12.55001559, -0.30220442)):
            Rectangle(SKETCH_83_W, SKETCH_83_H)
    extrude(amount=-EXTRUDE_30_DEPTH)

    # 圓角1
    # the kernel refuses this fillet: 10 mm, written as the material it takes off along each edge
    with BuildSketch(Plane(origin=(3, -30.090254449, -23.559487474), x_dir=(-1, 0, 0), z_dir=(0, 1, 0))) as fillet_1_piece_1:
        with BuildLine():
            CenterArc((7.32210178, 10), FILLET_1_R, 222.927997508, 47.072002492)
            Line((0, 3.189212562), (-0.146442036, 3.052996813))
            ThreePointArc((-0.146442036, 3.052996813), (-0.2, 1.594606281), (-0.2, 0))
            Line((-0.2, 0), (0, -0.2))
            Line((0, -0.2), (7.32210178, -0.2))
            Line((7.32210178, -0.2), (7.32210178, 0))
        make_face()
    extrude(amount=59.576100059, mode=Mode.SUBTRACT)

    # 草圖84 → 填料-伸長31 (add)
    with BuildSketch(Plane(origin=(0, -11.785, 0), x_dir=(-1, 0, 0), z_dir=(0, -1, 0))):
        with Locations((12.85, 26.960780818)):
            Rectangle(SKETCH_84_W, SKETCH_84_H)
    extrude(amount=-EXTRUDE_31_DEPTH)

    # 草圖85 → 除料-伸長40 (cut, through all)
    with BuildSketch(Plane.XZ.offset(11.785)):
        with Locations((-12.85, -36.250780818)):
            Rectangle(SKETCH_85_W, SKETCH_85_H)
    extrude(amount=-CUT_EXTRUDE_40_DEPTH, mode=Mode.SUBTRACT)

    # 草圖86 → 填料-伸長32 (add)
    with BuildSketch(Plane.XY.offset(-17.410780818)):
        with Locations((-12.85, -0.30220442)):
            Rectangle(SKETCH_86_W, SKETCH_86_H)
    extrude(amount=EXTRUDE_32_DEPTH)

    # 草圖87 → 除料-伸長41 (cut)
    with BuildSketch(Plane.XZ.offset(11.785)):
        with Locations((-12.795744065, -0.002688243)):
            Rectangle(SKETCH_87_W, SKETCH_87_H)
    extrude(amount=-CUT_EXTRUDE_41_DEPTH, mode=Mode.SUBTRACT)


with BuildPart() as cut_extrude_41_piece_1:
    # of the separate pieces the step leaves, piece 1, a body of its own (cut_extrude_41_pieces)
    add(part_1.part.solids().sort_by_distance((3, 11.18059116, -20.370274912))[0])



with BuildPart() as cut_extrude_41_piece_2:
    # of the separate pieces the step leaves, piece 2, a body of its own (cut_extrude_41_pieces)
    add(part_1.part.solids().sort_by_distance((-11.1, 11.18059116, 17.405404333))[0])

    # 草圖89 → 填料-伸長33 (add)
    with BuildSketch(Plane.XZ.offset(11.785)):
        with Locations((-11.045744065, 20.485780818)):
            Rectangle(SKETCH_89_W, SKETCH_89_H)
    extrude(amount=-EXTRUDE_33_DEPTH)

    # 草圖90 → 填料-伸長34 (add)
    with BuildSketch(Plane.XY.offset(23.560780818)):
        Polygon((-11, 11.18059116), (-11.1, 11.18059116), (-11.1, -11.785), (-10.99148813, -11.785), (-10.99148813, 11.18059116), align=None)
    extrude(amount=EXTRUDE_34_DEPTH)

    # 草圖91 → 除料-伸長42 (cut)
    with BuildSketch(Plane.ZY.offset(11.1)):
        with Locations((45.175, -0.30220442)):
            Rectangle(SKETCH_91_W, SKETCH_91_H)
    extrude(amount=-CUT_EXTRUDE_42_DEPTH, mode=Mode.SUBTRACT)


with BuildPart() as cut_extrude_41_piece_1_1:
    add(cut_extrude_41_piece_1.part)

    add(cut_extrude_41_piece_2.part)  # 填料-伸長35 merges 除料-伸長41 piece 2
    # 草圖95 → 填料-伸長35 (add)
    with BuildSketch(Plane(origin=(-10.99148813, 0, 0), x_dir=(0, 0, -1), z_dir=(1, 0, 0))):
        with Locations((-20.485780818, -0.30220442)):
            Rectangle(SKETCH_95_W, SKETCH_95_H)
    extrude(amount=EXTRUDE_35_DEPTH)

    # 圓角2
    # the kernel refuses this fillet: 10 mm, written as the material it takes off along each edge
    with BuildSketch(Plane(origin=(3.10851187, -30.131013506, 23.560780818), x_dir=(-1, 0, 0), z_dir=(0, 1, 0))) as fillet_2_piece_1:
        with BuildLine():
            CenterArc((7.338405402, -10), FILLET_2_R, 90, 47.209333859)
            Line((0, -3.206782342), (-0.146768108, -3.070917989))
            ThreePointArc((-0.146768108, -3.070917989), (-0.2, -1.603391171), (-0.2, 0))
            Line((-0.2, 0), (0, 0.2))
            Line((0, 0.2), (7.338405402, 0.2))
            Line((7.338405402, 0.2), (7.338405402, 0))
        make_face()
    extrude(amount=59.657618171, mode=Mode.SUBTRACT)

    # 草圖96 → 除料-伸長43 (cut, through all)
    with BuildSketch(Plane.XZ.offset(11.785)):
        with Locations((-12.795744065, 43.415)):
            Rectangle(SKETCH_96_W, SKETCH_96_H)
    extrude(amount=-CUT_EXTRUDE_43_DEPTH, mode=Mode.SUBTRACT)

    # 草圖97 → 填料-伸長36 (add)
    with BuildSketch(Plane.XZ.offset(11.785)):
        with Locations((-12.85, -39.065134146)):
            Rectangle(SKETCH_97_W, SKETCH_97_H)
    extrude(amount=-EXTRUDE_36_DEPTH)

    # 草圖98 → 除料-伸長44 (cut)
    with BuildSketch(Plane(origin=(-11.1, 0, 0), x_dir=(0, 0, -1), z_dir=(1, 0, 0))):
        Polygon((17.410780818, 11.18059116), (17.410780818, 11.315), (22.198280677, 11.315), (38.461669752, 11.315), (42.139487474, 11.315), (42.139487474, 11.18059116), align=None)
    extrude(amount=-CUT_EXTRUDE_44_DEPTH, mode=Mode.SUBTRACT)

    # 草圖99 → 除料-伸長45 (cut)
    with BuildSketch(Plane(origin=(-10.99148813, 0, 0), x_dir=(0, 0, -1), z_dir=(1, 0, 0))):
        with Locations((-20.485780818, 11.24779558)):
            Rectangle(SKETCH_99_W, SKETCH_99_H)
    extrude(amount=-CUT_EXTRUDE_45_DEPTH, mode=Mode.SUBTRACT)

    # 草圖101 → 除料-伸長46 (cut)
    with BuildSketch(Plane(origin=(-10.99148813, 0, 0), x_dir=(0, 0, -1), z_dir=(1, 0, 0))):
        with Locations((-32.928668636, -0.30220442)):
            Circle(SKETCH_101_R)
        with Locations((32.849487474, -0.30220442)):
            Circle(SKETCH_101_R)
    extrude(amount=-CUT_EXTRUDE_46_DEPTH, mode=Mode.SUBTRACT)

    # 草圖103 → 除料-伸長49 (cut, through all)
    with BuildSketch(Plane(origin=(0, 11.18059116, 0), x_dir=(1, 0, 0), z_dir=(0, 1, 0))):
        with Locations((-12.795744065, -17.675404333)):
            Rectangle(SKETCH_103_W, SKETCH_103_H)
    extrude(amount=-CUT_EXTRUDE_49_DEPTH, mode=Mode.SUBTRACT)

    # 草圖104 → 除料-伸長50 (cut, through all)
    with BuildSketch(Plane(origin=(0, 11.18059116, 0), x_dir=(1, 0, 0), z_dir=(0, 1, 0))):
        with Locations((-12.795744065, 17.680780818)):
            Rectangle(SKETCH_104_W, SKETCH_104_H)
    extrude(amount=-CUT_EXTRUDE_50_DEPTH, mode=Mode.SUBTRACT)

    # 草圖123 → 填料-伸長37 (add)
    with BuildSketch(Plane.ZY.offset(14.6)):
        with Locations((-30.045134146, -0.30220442)):
            Rectangle(SKETCH_123_W, SKETCH_123_H)
        with Locations((30.043092576, -0.30220442)):
            Rectangle(SKETCH_123_W_2, SKETCH_123_H)
    extrude(amount=EXTRUDE_37_DEPTH)

    # 草圖124 → 除料-伸長60 (cut, through all)
    with BuildSketch(Plane(origin=(-14.6, 0, 0), x_dir=(0, 0, -1), z_dir=(1, 0, 0))):
        with Locations((32.849487474, -0.30220442)):
            Circle(SKETCH_124_R)
        with Locations((-32.928668636, -0.30220442)):
            Circle(SKETCH_124_R)
    extrude(amount=-CUT_EXTRUDE_60_DEPTH, mode=Mode.SUBTRACT)

    # 草圖126 → 除料-伸長61 (cut, through all)
    with BuildSketch(Plane(origin=(0, 11.18059116, 0), x_dir=(1, 0, 0), z_dir=(0, 1, 0))):
        with Locations((20.589926908, 0.054862893)):
            Rectangle(SKETCH_126_W, SKETCH_126_H)
    extrude(amount=-CUT_EXTRUDE_61_DEPTH, mode=Mode.SUBTRACT)

    # 草圖127 → 填料-伸長38 (add)
    with BuildSketch(Plane(origin=(-10.99148813, 0, 0), x_dir=(0, 0, -1), z_dir=(1, 0, 0))):
        with Locations((-32.850780818, -0.30220442)):
            Rectangle(SKETCH_127_W, SKETCH_127_H)
    extrude(amount=EXTRUDE_38_DEPTH)

    # 草圖128 → 除料-伸長62 (cut, through all)
    with BuildSketch(Plane.ZY.offset(16.6)):
        with Locations((32.928668636, -0.30220442)):
            Circle(SKETCH_128_R)
    extrude(amount=-CUT_EXTRUDE_62_DEPTH, mode=Mode.SUBTRACT)

    # 草圖129 → 除料-伸長63 (cut, through all)
    with BuildSketch(Plane.ZY.offset(16.6)):
        with Locations((-32.849487474, -0.30220442)):
            Circle(SKETCH_129_R)
    extrude(amount=-CUT_EXTRUDE_63_DEPTH, mode=Mode.SUBTRACT)

    # 草圖130 → 除料-伸長64 (cut, through all)
    with BuildSketch(Plane(origin=(0, 11.18059116, 0), x_dir=(1, 0, 0), z_dir=(0, 1, 0))):
        with Locations((8.24934609, -18.560780818)):
            Rectangle(SKETCH_130_W, SKETCH_130_H)
    extrude(amount=-CUT_EXTRUDE_64_DEPTH, mode=Mode.SUBTRACT)

    # 草圖136 → 除料-伸長68 (cut)
    with BuildSketch(Plane(origin=(0, 11.18059116, 0), x_dir=(1, 0, 0), z_dir=(0, 1, 0))):
        with Locations((-5.99148813, -32.848092576)):
            Rectangle(SKETCH_136_W, SKETCH_136_H)
    extrude(amount=-CUT_EXTRUDE_68_DEPTH, mode=Mode.SUBTRACT)

    # 草圖138 → 填料-伸長40 (add)
    with BuildSketch(Plane.XY.offset(-17.950780818)):
        with Locations((-13.795744065, -0.30220442)):
            Rectangle(SKETCH_138_W, SKETCH_138_H)
    extrude(amount=EXTRUDE_40_DEPTH)

    # 草圖141 → 填料-伸長41 (add)
    with BuildSketch(Plane(origin=(-4.229893533, 0, 0), x_dir=(0, 0, -1), z_dir=(1, 0, 0))):
        with Locations((-18.558092576, -0.30220442)):
            Rectangle(SKETCH_141_W, SKETCH_141_H)
    extrude(amount=EXTRUDE_41_DEPTH)

    # 草圖144 → 除料-伸長70 (cut)
    with BuildSketch(Plane(origin=(0, 11.18059116, 0), x_dir=(1, 0, 0), z_dir=(0, 1, 0))):
        with Locations((-1.989893533, -18.558092576)):
            Rectangle(SKETCH_144_W, SKETCH_144_H)
    extrude(amount=-CUT_EXTRUDE_70_DEPTH, mode=Mode.SUBTRACT)

    # 草圖146 → 除料-伸長72 (cut, through all)
    with BuildSketch(Plane(origin=(-10.99148813, 0, 0), x_dir=(0, 0, -1), z_dir=(1, 0, 0))):
        with Locations((-32.928668636, -0.30220442)):
            Circle(SKETCH_146_R)
        with Locations((32.849487474, -0.30220442)):
            Circle(SKETCH_146_R)
    extrude(amount=-CUT_EXTRUDE_72_DEPTH, mode=Mode.SUBTRACT)

    # 草圖150 → 除料-伸長74 (cut, through all)
    with BuildSketch(Plane(origin=(-2.989893533, 0, 0), x_dir=(0, 0, -1), z_dir=(1, 0, 0))):
        with Locations((-18.558092575, -0.30220442)):
            Circle(SKETCH_150_R)
    extrude(amount=-CUT_EXTRUDE_74_DEPTH, mode=Mode.SUBTRACT)

    # 草圖152 → 除料-伸長75 (cut)
    with BuildSketch(Plane(origin=(0, 11.18059116, 0), x_dir=(1, 0, 0), z_dir=(0, 1, 0))):
        with Locations((17.050778936, 0.054862893)):
            Rectangle(SKETCH_152_W, SKETCH_152_H)
    extrude(amount=-CUT_EXTRUDE_75_DEPTH, mode=Mode.SUBTRACT)

    # 草圖153 → 伸長-薄件3 (add)
    with BuildSketch(Plane.XZ.offset(11.785)):
        Circle(SKETCH_153_R)
        Circle(SKETCH_153_R_2, mode=Mode.SUBTRACT)
    extrude(amount=-EXTRUDE_3_DEPTH)

    # 草圖155 → 除料-伸長76 (cut)
    with BuildSketch(Plane.XZ.offset(11.785)):
        Polygon((10.837851057, 5.140137107), (1.186892734, 5.140137107), (4.194530467, -5.249862893), (13.472328218, -5.249862893), (13.472328218, 5.140137107), align=None)
    extrude(amount=-CUT_EXTRUDE_76_DEPTH, mode=Mode.SUBTRACT)

    # 草圖156 → 除料-伸長77 (cut)
    with BuildSketch(Plane.XZ.offset(11.785)):
        Circle(SKETCH_156_R)
    extrude(amount=-CUT_EXTRUDE_77_DEPTH, mode=Mode.SUBTRACT)


solid = cut_extrude_41_piece_1_1.part
